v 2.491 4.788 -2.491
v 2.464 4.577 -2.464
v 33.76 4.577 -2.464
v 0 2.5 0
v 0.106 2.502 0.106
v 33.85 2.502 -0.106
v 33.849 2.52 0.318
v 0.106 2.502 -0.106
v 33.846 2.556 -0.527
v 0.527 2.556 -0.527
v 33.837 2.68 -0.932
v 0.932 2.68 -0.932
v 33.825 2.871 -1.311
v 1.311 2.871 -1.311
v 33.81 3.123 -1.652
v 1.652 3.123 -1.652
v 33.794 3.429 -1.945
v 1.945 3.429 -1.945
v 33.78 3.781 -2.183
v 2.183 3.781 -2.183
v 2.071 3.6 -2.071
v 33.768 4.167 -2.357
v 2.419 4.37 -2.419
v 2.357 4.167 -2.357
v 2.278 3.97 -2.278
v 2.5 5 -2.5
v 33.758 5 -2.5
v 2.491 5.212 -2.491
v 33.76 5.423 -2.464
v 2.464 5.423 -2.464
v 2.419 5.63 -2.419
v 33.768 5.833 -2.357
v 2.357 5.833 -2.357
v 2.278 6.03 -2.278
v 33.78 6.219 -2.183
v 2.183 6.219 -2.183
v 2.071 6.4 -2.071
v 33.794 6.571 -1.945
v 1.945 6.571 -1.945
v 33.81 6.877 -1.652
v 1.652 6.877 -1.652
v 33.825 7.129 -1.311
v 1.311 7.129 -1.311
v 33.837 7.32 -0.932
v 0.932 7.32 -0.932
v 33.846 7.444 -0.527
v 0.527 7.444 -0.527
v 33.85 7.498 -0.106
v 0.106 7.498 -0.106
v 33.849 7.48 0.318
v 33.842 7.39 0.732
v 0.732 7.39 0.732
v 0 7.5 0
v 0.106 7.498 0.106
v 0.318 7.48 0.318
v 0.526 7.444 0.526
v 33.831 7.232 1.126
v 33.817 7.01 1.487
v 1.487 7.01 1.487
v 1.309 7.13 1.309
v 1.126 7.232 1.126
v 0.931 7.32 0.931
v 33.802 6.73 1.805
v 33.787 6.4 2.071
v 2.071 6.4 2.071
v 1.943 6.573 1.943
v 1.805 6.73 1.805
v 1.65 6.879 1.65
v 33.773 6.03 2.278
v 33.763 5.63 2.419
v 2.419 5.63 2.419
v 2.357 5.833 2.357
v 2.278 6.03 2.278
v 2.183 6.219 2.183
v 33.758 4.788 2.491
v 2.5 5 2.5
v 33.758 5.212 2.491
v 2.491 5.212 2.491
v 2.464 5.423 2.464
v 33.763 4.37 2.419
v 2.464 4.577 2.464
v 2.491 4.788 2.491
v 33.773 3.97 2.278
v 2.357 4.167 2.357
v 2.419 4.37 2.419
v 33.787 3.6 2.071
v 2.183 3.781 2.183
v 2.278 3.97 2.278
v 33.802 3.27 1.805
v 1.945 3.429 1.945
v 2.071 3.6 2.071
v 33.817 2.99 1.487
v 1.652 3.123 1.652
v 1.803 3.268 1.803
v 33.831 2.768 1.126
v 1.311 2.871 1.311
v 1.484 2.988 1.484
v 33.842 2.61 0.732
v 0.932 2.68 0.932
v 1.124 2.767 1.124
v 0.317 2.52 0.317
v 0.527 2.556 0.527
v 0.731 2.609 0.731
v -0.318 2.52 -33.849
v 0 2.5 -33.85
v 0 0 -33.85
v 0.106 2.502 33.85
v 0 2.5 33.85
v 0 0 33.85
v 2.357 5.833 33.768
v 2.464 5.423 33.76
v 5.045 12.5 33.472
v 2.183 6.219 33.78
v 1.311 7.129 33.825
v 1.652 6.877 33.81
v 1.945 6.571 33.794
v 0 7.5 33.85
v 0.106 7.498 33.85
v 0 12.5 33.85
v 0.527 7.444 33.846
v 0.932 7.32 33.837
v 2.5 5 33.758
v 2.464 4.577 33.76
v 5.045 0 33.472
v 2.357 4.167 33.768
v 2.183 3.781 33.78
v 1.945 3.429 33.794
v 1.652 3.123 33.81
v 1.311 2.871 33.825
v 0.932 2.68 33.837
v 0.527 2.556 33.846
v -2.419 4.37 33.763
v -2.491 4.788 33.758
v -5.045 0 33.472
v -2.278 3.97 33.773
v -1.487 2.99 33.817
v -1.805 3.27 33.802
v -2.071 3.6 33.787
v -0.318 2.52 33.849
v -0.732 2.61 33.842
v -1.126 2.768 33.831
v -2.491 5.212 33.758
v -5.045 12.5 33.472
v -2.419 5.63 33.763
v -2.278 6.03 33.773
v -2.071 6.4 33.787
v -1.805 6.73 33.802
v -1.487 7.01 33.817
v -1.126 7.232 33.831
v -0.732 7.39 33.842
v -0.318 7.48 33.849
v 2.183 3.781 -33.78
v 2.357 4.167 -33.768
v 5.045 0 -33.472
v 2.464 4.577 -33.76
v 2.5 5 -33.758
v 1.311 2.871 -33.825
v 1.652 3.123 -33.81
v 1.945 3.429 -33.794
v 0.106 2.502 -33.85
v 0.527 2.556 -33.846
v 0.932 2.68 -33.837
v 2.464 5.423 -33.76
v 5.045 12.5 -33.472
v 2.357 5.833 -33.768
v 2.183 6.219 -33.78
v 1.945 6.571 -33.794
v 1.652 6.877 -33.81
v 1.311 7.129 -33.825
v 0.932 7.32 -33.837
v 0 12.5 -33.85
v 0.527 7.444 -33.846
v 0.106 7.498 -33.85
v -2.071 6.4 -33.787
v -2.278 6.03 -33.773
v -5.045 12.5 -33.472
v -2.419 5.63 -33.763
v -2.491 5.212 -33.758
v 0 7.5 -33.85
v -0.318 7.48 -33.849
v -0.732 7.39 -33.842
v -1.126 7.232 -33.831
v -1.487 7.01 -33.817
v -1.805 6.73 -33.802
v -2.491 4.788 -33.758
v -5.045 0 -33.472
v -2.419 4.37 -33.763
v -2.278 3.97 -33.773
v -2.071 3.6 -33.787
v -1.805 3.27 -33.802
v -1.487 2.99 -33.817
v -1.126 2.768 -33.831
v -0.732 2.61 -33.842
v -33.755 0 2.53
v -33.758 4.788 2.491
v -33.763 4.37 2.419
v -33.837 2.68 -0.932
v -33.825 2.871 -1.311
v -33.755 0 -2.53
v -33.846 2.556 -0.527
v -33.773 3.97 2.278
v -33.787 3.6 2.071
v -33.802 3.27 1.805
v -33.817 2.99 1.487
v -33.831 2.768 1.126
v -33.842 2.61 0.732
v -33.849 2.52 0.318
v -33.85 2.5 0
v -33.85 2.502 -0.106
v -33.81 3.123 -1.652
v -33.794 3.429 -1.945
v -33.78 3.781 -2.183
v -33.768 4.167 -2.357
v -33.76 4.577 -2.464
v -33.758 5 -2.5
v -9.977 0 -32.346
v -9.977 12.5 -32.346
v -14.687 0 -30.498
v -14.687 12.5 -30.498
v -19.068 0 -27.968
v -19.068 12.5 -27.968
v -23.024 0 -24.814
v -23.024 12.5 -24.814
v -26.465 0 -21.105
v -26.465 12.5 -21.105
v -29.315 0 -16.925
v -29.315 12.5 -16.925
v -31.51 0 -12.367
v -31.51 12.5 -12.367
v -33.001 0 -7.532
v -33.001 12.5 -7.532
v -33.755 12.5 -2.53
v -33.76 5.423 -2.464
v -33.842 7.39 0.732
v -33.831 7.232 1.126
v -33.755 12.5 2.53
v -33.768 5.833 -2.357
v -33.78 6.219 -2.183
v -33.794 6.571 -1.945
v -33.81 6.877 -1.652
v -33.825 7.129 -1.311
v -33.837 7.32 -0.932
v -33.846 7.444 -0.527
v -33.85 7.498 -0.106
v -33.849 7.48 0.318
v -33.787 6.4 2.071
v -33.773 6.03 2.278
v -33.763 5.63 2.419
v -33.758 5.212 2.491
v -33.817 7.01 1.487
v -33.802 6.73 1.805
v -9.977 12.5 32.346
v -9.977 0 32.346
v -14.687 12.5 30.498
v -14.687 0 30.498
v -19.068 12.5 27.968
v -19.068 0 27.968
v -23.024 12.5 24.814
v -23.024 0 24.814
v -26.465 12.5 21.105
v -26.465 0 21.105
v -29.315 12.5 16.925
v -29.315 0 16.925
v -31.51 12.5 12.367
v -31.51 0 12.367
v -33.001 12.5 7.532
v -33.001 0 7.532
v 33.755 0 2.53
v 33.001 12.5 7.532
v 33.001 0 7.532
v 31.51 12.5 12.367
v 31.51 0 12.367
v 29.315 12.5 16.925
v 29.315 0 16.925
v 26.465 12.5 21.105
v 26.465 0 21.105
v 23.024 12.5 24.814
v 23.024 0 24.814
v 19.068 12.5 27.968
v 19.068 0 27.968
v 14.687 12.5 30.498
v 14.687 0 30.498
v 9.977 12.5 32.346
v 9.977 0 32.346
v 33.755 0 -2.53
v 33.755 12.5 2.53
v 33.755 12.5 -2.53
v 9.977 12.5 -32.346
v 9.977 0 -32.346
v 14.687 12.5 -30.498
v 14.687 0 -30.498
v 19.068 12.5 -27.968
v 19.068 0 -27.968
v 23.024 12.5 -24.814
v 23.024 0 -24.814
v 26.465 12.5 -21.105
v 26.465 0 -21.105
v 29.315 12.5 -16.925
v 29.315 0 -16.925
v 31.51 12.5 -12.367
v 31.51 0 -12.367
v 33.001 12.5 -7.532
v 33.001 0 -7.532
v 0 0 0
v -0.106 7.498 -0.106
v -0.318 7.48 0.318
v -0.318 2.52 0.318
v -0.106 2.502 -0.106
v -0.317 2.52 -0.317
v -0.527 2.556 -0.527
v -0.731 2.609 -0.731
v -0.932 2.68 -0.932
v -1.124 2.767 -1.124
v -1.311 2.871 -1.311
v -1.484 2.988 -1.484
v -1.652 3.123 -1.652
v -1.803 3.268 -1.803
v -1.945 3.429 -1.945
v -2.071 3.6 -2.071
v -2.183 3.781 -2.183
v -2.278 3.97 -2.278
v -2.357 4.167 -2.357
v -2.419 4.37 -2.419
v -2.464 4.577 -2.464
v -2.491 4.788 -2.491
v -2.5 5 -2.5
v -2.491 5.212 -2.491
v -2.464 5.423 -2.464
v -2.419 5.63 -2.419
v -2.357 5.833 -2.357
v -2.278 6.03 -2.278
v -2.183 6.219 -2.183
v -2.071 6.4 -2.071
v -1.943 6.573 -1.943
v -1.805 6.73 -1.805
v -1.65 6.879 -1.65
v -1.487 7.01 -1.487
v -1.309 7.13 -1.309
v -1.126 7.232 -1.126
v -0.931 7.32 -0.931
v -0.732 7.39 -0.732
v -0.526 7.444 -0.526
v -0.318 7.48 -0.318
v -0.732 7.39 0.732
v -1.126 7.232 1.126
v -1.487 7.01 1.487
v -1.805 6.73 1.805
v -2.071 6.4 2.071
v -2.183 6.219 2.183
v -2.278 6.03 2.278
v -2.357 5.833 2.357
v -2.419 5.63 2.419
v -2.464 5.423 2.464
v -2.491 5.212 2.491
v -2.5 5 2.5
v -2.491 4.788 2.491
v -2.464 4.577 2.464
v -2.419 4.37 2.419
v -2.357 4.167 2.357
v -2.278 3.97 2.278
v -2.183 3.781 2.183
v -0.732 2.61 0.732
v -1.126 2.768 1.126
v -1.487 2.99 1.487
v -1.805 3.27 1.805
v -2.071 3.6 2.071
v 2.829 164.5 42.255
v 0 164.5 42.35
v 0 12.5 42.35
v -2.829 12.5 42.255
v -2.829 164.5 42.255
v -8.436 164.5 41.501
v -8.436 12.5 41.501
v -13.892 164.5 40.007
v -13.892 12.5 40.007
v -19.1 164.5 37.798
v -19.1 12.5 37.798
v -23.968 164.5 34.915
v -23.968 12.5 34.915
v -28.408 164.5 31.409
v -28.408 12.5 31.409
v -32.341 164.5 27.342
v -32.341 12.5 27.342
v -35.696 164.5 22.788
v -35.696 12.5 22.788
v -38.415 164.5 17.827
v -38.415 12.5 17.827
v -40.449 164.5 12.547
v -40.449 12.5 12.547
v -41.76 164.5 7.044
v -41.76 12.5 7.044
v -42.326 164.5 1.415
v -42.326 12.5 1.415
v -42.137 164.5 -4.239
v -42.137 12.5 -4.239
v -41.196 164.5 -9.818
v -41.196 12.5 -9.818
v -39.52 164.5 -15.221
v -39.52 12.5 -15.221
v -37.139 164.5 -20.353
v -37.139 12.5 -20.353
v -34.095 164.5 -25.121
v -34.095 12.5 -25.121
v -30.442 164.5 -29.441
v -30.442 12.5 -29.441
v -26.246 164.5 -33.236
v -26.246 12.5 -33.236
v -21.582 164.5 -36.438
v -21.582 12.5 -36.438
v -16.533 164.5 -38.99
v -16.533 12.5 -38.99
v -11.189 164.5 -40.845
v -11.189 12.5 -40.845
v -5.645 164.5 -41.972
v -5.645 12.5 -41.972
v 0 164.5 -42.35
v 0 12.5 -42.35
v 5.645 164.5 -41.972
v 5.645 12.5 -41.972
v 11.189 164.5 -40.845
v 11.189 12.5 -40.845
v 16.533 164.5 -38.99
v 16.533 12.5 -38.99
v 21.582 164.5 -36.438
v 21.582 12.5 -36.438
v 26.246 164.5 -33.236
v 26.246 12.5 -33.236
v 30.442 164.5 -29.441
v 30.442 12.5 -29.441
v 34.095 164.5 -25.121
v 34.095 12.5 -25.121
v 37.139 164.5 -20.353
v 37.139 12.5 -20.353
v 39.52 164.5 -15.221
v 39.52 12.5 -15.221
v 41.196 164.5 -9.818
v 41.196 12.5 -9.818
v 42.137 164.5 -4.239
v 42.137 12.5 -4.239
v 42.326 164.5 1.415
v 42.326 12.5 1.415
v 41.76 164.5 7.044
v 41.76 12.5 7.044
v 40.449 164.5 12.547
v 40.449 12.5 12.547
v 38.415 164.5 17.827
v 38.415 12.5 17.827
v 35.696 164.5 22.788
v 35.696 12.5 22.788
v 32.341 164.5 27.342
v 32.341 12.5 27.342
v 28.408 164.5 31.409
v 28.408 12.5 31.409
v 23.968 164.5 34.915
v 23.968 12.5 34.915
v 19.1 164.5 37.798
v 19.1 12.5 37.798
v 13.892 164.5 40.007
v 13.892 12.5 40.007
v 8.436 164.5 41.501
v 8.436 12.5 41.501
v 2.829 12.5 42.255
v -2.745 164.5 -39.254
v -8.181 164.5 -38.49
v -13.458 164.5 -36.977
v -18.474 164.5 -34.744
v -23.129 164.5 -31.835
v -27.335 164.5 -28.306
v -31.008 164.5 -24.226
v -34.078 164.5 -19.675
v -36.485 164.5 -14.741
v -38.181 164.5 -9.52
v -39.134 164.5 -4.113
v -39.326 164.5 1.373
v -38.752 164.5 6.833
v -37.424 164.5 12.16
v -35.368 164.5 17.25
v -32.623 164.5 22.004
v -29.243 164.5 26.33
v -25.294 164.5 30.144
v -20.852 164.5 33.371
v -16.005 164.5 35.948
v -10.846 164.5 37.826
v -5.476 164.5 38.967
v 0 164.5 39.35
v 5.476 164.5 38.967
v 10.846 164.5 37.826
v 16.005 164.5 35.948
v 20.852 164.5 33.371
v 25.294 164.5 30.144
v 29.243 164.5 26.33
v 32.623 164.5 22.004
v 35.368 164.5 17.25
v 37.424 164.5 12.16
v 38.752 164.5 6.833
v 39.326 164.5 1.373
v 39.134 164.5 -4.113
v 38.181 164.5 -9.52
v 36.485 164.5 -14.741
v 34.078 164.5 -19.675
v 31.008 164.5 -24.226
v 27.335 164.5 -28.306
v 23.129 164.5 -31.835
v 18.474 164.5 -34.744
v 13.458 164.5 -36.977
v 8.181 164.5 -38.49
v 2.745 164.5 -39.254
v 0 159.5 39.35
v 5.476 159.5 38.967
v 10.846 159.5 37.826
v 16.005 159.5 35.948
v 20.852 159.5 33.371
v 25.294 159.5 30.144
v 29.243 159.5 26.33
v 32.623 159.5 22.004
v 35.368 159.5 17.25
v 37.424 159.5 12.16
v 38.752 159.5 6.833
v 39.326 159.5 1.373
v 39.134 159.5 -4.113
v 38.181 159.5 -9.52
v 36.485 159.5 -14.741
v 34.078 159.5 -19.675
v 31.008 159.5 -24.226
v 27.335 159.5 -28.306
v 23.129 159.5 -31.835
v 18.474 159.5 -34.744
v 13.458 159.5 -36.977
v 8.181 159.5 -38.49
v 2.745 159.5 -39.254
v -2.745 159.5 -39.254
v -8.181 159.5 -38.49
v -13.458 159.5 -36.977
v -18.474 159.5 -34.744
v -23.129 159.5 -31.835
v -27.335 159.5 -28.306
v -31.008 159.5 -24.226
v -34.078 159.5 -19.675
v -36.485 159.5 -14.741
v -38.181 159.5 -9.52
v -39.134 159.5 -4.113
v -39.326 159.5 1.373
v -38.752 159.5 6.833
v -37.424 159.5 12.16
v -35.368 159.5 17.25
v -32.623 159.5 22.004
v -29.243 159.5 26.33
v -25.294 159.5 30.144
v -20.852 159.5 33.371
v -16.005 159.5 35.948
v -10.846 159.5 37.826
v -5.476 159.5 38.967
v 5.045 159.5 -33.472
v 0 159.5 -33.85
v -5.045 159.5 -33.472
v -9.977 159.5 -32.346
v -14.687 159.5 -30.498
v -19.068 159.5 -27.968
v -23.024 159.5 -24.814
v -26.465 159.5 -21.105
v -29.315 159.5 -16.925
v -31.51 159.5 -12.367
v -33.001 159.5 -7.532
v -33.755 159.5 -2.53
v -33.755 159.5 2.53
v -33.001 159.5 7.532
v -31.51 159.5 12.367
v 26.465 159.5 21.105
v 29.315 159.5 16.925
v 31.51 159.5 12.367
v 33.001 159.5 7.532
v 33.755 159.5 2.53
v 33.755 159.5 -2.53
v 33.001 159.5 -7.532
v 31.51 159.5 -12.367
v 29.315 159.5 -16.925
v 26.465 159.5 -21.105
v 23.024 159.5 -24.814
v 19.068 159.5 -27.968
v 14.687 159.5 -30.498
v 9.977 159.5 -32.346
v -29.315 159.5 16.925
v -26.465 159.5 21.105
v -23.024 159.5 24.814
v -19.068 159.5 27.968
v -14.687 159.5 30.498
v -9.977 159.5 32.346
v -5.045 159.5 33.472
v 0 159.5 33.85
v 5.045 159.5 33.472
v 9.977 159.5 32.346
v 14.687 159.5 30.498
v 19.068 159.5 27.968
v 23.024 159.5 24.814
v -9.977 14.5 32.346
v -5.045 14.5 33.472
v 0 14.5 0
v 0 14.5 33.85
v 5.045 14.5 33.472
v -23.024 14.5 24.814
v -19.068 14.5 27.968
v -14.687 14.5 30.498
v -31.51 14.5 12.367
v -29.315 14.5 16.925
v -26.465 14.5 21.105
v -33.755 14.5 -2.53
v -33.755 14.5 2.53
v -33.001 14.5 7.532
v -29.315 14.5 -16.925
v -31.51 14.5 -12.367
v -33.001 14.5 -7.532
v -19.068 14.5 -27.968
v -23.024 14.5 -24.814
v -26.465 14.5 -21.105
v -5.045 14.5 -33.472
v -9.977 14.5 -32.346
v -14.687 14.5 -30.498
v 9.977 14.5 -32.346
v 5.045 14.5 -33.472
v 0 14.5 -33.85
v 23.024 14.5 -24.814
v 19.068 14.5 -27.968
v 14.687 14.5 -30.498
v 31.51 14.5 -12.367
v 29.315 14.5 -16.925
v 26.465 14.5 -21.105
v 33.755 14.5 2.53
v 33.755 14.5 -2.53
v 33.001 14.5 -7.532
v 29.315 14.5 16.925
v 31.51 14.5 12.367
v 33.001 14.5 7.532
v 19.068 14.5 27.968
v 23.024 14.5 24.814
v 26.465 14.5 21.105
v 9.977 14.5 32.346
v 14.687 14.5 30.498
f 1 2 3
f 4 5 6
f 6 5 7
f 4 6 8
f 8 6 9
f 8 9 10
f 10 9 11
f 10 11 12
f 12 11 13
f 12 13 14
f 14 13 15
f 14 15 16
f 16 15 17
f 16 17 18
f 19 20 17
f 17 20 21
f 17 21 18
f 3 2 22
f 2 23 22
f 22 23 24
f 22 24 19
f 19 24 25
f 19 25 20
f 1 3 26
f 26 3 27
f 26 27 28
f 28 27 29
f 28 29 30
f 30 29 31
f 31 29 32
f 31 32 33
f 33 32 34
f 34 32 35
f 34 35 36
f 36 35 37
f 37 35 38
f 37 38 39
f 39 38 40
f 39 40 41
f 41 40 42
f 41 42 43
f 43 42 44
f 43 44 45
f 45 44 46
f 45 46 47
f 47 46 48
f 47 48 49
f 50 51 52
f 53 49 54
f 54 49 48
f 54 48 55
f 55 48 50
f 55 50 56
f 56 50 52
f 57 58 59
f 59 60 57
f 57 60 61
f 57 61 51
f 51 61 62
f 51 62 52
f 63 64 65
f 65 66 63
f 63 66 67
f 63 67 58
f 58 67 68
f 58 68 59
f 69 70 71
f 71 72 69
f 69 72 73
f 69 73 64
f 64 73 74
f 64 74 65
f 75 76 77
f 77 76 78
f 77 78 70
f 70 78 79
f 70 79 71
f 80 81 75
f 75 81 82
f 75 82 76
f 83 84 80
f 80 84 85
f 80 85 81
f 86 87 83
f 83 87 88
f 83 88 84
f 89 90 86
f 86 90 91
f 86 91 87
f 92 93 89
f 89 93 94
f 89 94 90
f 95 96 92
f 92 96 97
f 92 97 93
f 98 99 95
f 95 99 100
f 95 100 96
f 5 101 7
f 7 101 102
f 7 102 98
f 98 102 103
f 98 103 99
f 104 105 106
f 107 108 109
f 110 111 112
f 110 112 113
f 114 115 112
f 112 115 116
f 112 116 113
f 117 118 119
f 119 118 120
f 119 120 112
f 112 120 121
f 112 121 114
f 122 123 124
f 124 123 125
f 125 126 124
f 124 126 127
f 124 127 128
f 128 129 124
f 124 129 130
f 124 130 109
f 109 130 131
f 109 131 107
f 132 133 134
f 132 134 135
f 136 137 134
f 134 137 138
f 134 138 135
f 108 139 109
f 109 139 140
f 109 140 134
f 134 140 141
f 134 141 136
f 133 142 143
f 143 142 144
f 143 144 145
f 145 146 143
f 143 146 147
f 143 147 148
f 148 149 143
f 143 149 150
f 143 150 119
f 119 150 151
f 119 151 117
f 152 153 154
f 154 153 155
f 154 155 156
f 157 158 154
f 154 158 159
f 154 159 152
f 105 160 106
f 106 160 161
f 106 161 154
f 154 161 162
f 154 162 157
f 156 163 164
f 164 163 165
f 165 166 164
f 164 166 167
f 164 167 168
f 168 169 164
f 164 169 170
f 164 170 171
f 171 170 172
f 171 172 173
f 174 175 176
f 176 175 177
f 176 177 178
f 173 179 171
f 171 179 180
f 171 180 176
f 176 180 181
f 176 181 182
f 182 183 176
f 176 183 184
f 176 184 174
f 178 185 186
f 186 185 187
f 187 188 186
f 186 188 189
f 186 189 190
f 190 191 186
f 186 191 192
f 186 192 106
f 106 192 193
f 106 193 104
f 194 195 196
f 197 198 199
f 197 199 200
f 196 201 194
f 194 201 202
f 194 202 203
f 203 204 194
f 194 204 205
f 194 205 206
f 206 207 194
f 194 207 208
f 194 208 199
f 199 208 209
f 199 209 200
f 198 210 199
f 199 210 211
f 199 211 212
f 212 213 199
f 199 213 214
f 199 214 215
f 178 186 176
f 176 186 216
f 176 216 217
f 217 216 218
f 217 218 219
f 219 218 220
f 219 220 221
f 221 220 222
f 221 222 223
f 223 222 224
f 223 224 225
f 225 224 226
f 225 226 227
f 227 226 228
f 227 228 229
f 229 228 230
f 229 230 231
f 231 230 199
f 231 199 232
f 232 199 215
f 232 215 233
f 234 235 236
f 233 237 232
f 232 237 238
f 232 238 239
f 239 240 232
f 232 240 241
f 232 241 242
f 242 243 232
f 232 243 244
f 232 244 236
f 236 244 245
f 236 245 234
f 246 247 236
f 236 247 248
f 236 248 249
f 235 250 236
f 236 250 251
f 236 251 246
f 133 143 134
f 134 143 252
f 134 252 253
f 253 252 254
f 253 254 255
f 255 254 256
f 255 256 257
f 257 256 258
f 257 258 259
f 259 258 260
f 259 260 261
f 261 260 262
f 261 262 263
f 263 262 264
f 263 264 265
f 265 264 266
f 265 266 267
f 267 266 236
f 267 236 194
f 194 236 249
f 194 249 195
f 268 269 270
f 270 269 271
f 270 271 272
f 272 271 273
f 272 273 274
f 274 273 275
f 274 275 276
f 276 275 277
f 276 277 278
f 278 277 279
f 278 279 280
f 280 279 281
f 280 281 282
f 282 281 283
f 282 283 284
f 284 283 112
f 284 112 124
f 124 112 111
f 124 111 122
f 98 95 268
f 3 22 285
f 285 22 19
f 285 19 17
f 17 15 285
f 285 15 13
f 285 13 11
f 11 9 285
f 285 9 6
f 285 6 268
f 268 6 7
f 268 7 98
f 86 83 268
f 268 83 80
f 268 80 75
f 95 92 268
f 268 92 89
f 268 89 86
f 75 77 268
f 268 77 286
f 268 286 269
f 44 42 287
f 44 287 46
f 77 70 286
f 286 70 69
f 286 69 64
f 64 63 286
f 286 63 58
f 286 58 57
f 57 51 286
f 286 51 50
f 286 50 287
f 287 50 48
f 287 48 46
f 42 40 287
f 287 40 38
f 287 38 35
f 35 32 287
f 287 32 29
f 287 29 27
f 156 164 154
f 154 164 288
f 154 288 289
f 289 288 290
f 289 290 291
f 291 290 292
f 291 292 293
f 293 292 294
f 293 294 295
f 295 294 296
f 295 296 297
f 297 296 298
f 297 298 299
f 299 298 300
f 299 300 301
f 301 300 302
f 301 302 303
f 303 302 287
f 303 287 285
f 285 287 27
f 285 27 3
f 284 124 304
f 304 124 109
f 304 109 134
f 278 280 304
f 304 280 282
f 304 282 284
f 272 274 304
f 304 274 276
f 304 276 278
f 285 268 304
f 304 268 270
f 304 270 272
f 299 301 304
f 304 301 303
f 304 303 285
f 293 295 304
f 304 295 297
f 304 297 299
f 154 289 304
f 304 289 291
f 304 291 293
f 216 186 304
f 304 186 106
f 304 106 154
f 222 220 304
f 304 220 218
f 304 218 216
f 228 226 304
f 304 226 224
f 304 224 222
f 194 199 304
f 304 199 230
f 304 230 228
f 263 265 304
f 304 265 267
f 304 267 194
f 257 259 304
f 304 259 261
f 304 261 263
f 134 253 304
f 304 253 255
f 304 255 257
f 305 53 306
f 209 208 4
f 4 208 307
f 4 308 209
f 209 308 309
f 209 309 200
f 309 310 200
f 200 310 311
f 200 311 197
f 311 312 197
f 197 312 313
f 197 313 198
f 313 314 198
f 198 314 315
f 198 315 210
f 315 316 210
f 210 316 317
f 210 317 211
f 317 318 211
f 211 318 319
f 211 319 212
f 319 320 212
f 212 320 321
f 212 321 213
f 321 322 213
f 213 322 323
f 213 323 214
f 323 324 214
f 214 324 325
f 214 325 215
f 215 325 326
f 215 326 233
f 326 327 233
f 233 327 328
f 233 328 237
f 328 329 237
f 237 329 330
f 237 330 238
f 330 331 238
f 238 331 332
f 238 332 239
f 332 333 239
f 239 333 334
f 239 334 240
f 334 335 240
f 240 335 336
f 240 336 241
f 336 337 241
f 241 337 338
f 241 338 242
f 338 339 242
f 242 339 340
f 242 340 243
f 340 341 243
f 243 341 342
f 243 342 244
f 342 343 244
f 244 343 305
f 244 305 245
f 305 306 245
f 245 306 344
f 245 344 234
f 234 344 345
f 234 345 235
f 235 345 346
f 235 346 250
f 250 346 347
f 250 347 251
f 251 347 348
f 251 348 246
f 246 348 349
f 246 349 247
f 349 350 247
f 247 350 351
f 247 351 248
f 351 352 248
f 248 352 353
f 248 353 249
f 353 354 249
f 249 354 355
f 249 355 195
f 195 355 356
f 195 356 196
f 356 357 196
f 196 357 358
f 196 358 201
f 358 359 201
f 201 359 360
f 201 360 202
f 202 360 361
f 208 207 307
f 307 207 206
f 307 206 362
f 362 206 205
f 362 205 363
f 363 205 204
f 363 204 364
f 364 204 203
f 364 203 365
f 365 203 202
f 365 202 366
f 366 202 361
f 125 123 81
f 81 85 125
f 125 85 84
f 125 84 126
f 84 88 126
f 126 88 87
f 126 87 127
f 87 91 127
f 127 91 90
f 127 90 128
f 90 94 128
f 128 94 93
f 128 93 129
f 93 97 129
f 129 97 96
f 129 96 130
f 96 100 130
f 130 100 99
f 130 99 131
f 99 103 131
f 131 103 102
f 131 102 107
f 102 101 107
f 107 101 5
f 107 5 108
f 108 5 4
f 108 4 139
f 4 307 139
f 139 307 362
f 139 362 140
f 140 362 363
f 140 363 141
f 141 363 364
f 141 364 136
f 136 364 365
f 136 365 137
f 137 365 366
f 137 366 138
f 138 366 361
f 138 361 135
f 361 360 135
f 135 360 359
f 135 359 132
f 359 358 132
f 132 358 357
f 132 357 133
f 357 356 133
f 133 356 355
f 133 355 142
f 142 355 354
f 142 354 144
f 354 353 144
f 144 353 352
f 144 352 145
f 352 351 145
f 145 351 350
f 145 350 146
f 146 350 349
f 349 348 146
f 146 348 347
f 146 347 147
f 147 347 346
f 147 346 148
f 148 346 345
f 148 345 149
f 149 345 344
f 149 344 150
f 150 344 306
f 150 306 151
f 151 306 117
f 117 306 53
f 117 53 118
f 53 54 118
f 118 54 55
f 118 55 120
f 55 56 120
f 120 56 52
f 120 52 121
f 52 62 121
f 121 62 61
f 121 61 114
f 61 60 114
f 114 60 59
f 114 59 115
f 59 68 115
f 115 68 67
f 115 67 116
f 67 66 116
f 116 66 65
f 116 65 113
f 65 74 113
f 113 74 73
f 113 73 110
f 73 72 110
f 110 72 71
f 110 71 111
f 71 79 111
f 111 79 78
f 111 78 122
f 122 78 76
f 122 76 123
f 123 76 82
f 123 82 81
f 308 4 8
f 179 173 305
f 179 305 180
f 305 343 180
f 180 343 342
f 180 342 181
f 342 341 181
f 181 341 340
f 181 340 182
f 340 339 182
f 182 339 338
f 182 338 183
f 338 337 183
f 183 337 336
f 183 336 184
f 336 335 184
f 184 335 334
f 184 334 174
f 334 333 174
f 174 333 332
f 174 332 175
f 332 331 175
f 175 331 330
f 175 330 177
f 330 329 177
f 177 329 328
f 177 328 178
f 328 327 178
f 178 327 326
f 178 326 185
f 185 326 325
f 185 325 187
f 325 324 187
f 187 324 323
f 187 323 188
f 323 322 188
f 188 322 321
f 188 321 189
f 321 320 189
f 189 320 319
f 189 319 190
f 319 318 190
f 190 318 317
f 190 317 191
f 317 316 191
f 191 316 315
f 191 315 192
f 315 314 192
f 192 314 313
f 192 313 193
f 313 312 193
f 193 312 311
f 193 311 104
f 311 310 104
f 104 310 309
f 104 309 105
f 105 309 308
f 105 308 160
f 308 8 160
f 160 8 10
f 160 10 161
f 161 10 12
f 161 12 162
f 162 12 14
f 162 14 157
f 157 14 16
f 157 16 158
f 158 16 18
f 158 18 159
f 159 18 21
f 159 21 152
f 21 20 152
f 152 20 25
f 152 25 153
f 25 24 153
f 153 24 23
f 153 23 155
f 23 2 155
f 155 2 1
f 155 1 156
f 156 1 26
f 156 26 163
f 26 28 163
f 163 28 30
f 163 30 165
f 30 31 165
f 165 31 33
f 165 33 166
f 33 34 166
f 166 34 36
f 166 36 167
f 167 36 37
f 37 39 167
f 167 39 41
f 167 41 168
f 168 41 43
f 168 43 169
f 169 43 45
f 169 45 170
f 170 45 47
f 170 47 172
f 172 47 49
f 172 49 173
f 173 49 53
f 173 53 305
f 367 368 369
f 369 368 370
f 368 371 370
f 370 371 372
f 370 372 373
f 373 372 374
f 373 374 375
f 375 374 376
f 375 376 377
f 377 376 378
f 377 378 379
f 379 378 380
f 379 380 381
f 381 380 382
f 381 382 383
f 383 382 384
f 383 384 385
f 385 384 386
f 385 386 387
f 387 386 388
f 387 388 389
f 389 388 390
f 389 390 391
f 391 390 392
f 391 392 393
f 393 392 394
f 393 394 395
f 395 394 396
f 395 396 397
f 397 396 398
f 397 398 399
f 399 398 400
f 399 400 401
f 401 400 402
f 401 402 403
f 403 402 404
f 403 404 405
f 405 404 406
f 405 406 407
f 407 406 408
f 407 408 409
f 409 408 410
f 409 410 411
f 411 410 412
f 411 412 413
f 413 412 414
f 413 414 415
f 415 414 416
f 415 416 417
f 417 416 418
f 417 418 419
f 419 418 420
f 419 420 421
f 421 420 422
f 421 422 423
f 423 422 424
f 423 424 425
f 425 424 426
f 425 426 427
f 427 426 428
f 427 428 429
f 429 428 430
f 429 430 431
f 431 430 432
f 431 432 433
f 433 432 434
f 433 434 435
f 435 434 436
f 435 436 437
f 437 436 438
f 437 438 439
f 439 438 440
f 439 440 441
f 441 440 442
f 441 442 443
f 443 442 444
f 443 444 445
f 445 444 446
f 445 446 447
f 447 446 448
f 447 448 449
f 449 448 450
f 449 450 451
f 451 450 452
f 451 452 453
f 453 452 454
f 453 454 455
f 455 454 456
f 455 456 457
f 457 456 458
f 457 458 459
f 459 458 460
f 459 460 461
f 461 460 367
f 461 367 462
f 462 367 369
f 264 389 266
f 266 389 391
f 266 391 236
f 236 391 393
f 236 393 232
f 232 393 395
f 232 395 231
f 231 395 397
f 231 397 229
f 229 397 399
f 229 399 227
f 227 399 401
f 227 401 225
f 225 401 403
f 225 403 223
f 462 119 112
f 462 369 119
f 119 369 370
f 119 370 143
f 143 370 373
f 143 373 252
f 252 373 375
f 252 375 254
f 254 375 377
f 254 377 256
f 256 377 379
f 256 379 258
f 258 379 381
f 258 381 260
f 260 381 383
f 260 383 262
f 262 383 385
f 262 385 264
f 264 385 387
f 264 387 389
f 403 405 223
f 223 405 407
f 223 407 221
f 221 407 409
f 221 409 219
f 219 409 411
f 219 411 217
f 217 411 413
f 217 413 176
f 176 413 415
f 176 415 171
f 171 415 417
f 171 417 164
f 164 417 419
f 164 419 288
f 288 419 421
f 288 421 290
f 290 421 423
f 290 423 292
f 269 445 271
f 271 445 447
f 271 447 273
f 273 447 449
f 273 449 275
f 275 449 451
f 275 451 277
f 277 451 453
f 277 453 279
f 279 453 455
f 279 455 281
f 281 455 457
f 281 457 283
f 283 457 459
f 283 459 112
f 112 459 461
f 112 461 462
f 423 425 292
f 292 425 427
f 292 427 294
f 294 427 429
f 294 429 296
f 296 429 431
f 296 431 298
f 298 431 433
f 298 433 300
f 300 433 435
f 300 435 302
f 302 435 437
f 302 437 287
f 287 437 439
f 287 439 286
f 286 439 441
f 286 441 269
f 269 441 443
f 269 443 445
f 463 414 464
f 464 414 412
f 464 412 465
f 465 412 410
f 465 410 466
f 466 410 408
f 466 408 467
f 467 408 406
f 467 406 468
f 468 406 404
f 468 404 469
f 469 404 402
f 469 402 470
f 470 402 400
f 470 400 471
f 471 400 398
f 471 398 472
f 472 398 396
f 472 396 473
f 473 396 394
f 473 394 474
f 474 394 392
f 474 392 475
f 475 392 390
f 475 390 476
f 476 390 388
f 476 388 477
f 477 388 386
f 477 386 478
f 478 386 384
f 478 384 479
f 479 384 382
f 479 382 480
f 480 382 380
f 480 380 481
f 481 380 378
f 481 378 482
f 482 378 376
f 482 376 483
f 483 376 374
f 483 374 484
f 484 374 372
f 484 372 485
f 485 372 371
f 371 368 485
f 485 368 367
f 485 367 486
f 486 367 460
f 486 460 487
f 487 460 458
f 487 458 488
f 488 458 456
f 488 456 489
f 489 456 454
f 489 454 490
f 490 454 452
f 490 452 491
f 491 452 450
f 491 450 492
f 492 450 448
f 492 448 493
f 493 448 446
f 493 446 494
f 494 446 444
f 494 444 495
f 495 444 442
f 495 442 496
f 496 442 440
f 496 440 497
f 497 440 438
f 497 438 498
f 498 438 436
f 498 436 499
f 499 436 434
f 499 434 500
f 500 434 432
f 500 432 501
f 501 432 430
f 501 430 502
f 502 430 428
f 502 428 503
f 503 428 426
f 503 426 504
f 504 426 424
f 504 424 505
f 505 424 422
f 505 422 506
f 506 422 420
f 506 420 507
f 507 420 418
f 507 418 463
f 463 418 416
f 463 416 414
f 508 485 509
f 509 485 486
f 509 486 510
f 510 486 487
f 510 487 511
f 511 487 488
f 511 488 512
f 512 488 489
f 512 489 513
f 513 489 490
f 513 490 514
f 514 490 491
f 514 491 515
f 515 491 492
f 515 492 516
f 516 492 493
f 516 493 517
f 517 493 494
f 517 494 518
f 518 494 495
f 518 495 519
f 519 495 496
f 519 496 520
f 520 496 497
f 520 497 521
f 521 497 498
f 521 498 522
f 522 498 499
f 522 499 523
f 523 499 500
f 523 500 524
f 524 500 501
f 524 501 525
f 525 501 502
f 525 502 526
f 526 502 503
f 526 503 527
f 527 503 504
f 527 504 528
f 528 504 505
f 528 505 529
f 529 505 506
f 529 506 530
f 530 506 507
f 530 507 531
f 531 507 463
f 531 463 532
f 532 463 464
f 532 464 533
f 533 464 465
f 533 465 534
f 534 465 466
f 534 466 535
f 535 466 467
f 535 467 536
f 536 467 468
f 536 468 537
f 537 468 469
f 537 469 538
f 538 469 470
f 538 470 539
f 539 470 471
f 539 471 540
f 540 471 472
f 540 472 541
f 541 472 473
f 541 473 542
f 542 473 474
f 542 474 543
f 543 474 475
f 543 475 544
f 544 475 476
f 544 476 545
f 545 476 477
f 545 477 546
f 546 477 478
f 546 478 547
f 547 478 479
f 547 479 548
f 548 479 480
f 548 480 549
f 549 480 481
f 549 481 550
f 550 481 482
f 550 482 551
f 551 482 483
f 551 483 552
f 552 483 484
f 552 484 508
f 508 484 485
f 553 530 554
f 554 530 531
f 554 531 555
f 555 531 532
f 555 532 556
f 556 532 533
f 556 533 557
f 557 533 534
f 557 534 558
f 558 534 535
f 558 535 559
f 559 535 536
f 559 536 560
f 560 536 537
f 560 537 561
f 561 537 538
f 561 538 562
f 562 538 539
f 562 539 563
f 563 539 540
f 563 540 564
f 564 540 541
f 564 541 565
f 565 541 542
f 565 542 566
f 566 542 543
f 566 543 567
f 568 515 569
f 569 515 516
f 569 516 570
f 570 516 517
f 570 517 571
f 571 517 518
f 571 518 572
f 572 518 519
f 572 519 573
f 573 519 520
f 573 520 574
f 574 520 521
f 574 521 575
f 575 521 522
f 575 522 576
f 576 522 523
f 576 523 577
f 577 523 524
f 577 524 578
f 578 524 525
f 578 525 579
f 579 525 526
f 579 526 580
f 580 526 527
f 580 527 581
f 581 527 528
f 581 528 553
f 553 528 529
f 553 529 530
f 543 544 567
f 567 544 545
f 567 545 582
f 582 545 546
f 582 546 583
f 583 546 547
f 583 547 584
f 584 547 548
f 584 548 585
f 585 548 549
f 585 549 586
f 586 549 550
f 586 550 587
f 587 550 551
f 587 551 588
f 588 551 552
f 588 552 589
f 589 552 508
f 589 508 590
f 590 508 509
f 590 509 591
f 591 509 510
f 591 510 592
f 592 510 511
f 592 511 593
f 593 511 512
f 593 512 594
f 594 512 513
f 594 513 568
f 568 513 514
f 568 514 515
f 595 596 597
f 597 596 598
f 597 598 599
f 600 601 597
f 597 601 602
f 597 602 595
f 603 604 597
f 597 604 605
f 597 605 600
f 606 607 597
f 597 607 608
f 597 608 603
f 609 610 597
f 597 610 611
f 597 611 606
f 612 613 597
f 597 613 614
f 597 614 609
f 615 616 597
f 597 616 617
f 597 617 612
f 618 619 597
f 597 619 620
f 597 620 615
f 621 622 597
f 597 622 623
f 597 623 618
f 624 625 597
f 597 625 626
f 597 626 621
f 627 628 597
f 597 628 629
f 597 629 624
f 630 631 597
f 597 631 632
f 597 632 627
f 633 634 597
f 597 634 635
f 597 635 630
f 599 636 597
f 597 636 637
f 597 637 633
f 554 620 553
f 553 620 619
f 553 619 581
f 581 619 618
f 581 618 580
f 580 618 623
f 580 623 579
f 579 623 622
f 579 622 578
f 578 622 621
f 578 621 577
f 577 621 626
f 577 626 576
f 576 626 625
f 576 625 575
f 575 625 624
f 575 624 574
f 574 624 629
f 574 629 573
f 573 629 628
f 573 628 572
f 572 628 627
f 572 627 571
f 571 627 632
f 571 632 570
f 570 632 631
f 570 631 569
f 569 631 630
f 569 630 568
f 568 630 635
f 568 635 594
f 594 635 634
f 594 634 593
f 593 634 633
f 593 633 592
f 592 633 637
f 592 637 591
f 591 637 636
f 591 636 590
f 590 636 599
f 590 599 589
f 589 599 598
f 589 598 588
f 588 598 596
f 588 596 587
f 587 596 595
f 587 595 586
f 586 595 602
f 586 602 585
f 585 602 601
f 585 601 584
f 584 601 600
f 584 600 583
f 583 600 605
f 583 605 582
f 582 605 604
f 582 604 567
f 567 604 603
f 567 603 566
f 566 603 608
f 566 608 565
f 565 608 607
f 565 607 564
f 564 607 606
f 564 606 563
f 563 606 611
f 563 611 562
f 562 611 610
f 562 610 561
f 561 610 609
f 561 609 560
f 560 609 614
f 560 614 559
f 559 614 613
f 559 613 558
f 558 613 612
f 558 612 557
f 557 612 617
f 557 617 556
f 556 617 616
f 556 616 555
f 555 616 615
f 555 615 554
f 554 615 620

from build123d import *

# Parameters (mm, degrees)
SKETCH1_R               = 33.85
BOSS_EXTRUDE1_DEPTH     = 12.5
SKETCH2_R               = 2.5
CUT_EXTRUDE1_DEPTH      = 34.85
CUT_EXTRUDE1_DEPTH_BACK = 34.85
SKETCH3_R               = 2.5
CUT_EXTRUDE2_DEPTH      = 34.8500001
CUT_EXTRUDE2_DEPTH_BACK = 34.8500001
SKETCH4_R               = 42.35
BOSS_EXTRUDE2_DEPTH     = 2
SKETCH5_R               = 42.35
SKETCH5_R_2             = 33.85
BOSS_EXTRUDE3_DEPTH     = 150
SKETCH6_R               = 39.35
CUT_EXTRUDE3_DEPTH      = 5


with BuildPart() as part:
    # Sketch1 → Boss-Extrude1 (new body)
    with BuildSketch(Plane(origin=(0, 0, 0), x_dir=(1, 0, 0), z_dir=(0, 1, 0))):
        Circle(SKETCH1_R)
    extrude(amount=BOSS_EXTRUDE1_DEPTH)

    # Sketch2 → Cut-Extrude1 (cut, two sides)
    with BuildSketch(Plane(origin=(0, 0, 0), x_dir=(0, 0, -1), z_dir=(1, 0, 0))) as cut_extrude1_sk:
        with Locations((0, 5)):
            Circle(SKETCH2_R)
    extrude(amount=CUT_EXTRUDE1_DEPTH, mode=Mode.SUBTRACT)
    extrude(cut_extrude1_sk.sketch, amount=-CUT_EXTRUDE1_DEPTH_BACK, mode=Mode.SUBTRACT)

    # Sketch3 → Cut-Extrude2 (cut, two sides)
    with BuildSketch(Plane.XY) as cut_extrude2_sk:
        with Locations((0, 5)):
            Circle(SKETCH3_R)
    extrude(amount=CUT_EXTRUDE2_DEPTH, mode=Mode.SUBTRACT)
    extrude(cut_extrude2_sk.sketch, amount=-CUT_EXTRUDE2_DEPTH_BACK, mode=Mode.SUBTRACT)

    # Sketch4 → Boss-Extrude2 (add)
    with BuildSketch(Plane(origin=(0, 12.5, 0), x_dir=(1, 0, 0), z_dir=(0, 1, 0))):
        Circle(SKETCH4_R)
    extrude(amount=BOSS_EXTRUDE2_DEPTH)

    # Sketch5 → Boss-Extrude3 (add)
    with BuildSketch(Plane(origin=(0, 14.5, 0), x_dir=(1, 0, 0), z_dir=(0, 1, 0))):
        Circle(SKETCH5_R)
        Circle(SKETCH5_R_2, mode=Mode.SUBTRACT)
    extrude(amount=BOSS_EXTRUDE3_DEPTH)

    # Sketch6 → Cut-Extrude3 (cut)
    with BuildSketch(Plane(origin=(0, 164.5, 0), x_dir=(1, 0, 0), z_dir=(0, 1, 0))):
        Circle(SKETCH6_R)
    extrude(amount=-CUT_EXTRUDE3_DEPTH, mode=Mode.SUBTRACT)


solid = part.part
